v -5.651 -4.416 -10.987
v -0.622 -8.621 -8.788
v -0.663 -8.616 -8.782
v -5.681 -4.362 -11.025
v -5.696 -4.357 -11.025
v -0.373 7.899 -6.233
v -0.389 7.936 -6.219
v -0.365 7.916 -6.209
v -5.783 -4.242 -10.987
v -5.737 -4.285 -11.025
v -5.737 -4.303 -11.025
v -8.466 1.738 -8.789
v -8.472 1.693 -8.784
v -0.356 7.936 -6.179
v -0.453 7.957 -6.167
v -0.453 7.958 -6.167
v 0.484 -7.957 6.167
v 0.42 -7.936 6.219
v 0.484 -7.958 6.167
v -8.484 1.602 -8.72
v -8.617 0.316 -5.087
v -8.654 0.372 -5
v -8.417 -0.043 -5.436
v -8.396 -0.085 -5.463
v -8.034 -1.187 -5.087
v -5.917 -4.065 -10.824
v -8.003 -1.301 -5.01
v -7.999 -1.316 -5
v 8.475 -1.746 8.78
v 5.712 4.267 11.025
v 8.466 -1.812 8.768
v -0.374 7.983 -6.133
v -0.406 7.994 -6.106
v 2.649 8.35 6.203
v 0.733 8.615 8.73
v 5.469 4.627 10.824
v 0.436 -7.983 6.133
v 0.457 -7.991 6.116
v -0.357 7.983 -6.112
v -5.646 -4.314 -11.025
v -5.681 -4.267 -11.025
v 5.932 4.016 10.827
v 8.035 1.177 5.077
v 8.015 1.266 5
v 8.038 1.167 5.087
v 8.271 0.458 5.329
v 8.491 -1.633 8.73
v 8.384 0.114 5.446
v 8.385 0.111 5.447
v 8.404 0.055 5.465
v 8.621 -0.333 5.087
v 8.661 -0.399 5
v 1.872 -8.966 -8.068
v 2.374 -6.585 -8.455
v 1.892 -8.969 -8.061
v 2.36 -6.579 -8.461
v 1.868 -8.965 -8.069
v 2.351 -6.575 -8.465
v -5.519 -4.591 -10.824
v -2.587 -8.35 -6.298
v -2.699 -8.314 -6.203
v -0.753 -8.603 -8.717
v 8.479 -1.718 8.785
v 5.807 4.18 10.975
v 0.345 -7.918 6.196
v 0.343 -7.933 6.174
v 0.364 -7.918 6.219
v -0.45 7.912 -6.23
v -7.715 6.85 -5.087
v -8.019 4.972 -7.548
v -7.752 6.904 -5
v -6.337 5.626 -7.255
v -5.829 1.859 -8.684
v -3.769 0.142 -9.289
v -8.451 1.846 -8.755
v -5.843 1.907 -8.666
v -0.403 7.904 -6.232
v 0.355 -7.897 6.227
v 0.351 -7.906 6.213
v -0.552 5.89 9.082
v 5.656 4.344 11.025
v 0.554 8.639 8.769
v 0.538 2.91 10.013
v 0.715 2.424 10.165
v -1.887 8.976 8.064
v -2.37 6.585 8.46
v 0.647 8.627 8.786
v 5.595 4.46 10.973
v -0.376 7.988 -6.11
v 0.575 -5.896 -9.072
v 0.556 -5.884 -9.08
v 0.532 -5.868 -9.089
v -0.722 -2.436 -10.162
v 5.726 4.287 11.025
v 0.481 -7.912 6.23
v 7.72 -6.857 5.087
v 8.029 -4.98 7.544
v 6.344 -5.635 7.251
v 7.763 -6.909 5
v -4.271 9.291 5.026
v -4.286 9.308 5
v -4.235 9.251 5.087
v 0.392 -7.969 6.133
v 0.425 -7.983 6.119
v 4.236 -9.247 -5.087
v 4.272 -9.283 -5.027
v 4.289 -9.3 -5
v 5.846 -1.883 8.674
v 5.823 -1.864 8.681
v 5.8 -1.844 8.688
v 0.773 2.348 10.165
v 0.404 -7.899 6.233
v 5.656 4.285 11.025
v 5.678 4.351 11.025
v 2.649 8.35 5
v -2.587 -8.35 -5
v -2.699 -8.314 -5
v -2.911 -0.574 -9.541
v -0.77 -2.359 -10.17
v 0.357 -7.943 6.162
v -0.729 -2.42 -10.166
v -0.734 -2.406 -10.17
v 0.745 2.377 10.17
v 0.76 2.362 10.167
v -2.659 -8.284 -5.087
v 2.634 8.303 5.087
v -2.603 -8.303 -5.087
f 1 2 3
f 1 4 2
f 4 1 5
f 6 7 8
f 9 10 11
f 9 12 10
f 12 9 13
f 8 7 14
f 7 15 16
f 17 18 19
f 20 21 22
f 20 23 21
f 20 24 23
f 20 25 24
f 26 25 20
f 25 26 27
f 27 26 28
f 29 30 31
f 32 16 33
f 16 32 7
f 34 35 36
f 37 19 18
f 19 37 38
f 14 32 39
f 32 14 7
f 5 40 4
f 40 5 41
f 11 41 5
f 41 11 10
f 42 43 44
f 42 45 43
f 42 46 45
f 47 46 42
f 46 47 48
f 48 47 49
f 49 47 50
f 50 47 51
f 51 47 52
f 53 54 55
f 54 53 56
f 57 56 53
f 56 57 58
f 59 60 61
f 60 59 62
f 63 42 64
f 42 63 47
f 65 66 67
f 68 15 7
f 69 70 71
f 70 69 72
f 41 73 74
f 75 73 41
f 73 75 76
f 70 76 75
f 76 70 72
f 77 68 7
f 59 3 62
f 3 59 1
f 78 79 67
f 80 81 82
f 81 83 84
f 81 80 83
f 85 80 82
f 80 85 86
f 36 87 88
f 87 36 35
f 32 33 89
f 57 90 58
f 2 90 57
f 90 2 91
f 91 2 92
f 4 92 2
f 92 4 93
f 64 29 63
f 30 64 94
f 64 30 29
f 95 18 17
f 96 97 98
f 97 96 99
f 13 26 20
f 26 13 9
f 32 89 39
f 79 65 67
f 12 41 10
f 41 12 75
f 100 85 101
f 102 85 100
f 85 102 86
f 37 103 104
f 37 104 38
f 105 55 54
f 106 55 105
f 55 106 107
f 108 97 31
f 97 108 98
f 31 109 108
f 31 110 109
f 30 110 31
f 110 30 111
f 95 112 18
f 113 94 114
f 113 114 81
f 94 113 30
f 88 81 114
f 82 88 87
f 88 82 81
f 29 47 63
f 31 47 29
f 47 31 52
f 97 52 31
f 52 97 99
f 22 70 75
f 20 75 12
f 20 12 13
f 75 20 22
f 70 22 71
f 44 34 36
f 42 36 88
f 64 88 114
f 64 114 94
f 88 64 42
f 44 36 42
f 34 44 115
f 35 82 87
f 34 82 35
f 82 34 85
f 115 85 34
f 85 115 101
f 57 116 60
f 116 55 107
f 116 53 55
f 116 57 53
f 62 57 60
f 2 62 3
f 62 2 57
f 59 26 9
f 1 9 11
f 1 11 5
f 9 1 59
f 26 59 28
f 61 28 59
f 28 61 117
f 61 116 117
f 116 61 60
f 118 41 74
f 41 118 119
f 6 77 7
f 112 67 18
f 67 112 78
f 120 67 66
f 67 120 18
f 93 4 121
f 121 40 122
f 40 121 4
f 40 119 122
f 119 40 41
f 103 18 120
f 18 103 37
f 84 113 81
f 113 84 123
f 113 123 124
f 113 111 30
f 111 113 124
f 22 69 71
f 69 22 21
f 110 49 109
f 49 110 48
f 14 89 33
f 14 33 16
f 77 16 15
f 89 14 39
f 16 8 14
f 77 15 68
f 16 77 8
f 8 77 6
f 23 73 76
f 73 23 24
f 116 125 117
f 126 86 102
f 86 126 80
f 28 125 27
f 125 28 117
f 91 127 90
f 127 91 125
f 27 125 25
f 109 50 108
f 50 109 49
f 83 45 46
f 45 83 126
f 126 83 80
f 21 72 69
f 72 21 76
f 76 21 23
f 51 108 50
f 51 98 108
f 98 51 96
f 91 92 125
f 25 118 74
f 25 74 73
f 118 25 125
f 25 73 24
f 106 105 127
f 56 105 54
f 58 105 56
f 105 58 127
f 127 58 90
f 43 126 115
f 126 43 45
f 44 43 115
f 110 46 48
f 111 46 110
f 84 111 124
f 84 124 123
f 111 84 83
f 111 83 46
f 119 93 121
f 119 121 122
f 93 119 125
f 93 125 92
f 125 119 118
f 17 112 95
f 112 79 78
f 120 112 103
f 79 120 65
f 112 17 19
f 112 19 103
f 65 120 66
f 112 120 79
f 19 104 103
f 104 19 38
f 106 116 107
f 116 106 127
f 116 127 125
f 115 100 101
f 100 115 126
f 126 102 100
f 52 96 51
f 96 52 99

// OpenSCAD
// Auto-generated OpenSCAD file

    inner_points = 10*[[0.7287883694352655, -0.9622755809862549, 0.4999999999999998], [0.728788369435265, -0.9622755809862551, -0.5000000000000002], [-0.728788369435265, 0.9622755809862551, 0.5000000000000002], [-0.7287883694352655, 0.9622755809862549, -0.4999999999999998], [0.30187402671986113, -0.3985875963849562, 1.2071067811865475], [0.3018740267198599, -0.39858759638495667, -1.2071067811865475], [-0.3018740267198599, 0.39858759638495667, 1.2071067811865475], [-0.30187402671986113, 0.3985875963849562, -1.2071067811865475], [-0.26181395788143796, -0.8255019391003613, 0.5000000000000002], [0.8655620113211595, 0.02832674633044846, 0.49999999999999956], [-0.2618139578814384, -0.8255019391003613, -0.4999999999999998], [0.8655620113211591, 0.028326746330448405, -0.5000000000000004], [-0.8655620113211591, -0.028326746330448405, 0.5000000000000004], [0.2618139578814384, 0.8255019391003613, 0.4999999999999998], [-0.8655620113211595, -0.02832674633044846, -0.49999999999999956], [0.26181395788143796, 0.8255019391003613, -0.5000000000000002]];

    outer_points = 10*[[-0.5696478499849842, -0.4314281054603697, -1.093836321399554], [-0.960592326979208, 0.4314281054603697, -0.7734590825338425], [0.960592326979208, -0.4314281054603697, 0.7734590825338425], [0.5696478499849842, 0.4314281054603697, 1.093836321399554], [0.1549886117537691, -1.0415595833913545, -0.7734590782057024], [-0.7888348467405426, 1.0415595833913545, -3.0604573320047734e-09], [0.7888348467405426, -1.0415595833913545, 3.0604573320047734e-09], [-0.1549886117537691, 1.0415595833913545, 0.7734590782057024], [-0.5933626113683385, -0.7888348480349219, -0.16018861993246514], [0.3504608533757889, -0.07402136288581751, -0.9336477001994059], [-0.9843070883625624, 0.07402136288581751, 0.1601886189332462], [-0.04048362361843505, 0.7888348480349219, -0.6132704613336946], [0.04048362361843505, -0.7888348480349219, 0.6132704613336946], [0.9843070883625624, -0.07402136288581751, -0.1601886189332462], [-0.3504608533757889, 0.07402136288581751, 0.9336477001994059], [0.5933626113683385, 0.7888348480349219, 0.16018861993246514]];

    // Convex hull for inner set (I)
    module inner_hull() {
        hull() {
            for (p = inner_points) {
                translate(p) sphere(r=0.1);
            }
        }
    }

    // Convex hull for outer set (O) minus inner hull (O \ I)
    module outer_minus_inner() {
        difference() {
            hull() {
                for (p = outer_points) {
                    translate(p) sphere(r=0.1);
                }
            }
            inner_hull(); // Subtract inner hull
        }
    }

    // Convex hull for outer set (O) minus all translated inner hulls
    module outer_minus_AllTranslationInner() {
        difference() {
            hull() {
                for (p = outer_points) {
                    translate(p) sphere(r=0.1);
                }
            }
            hull() {
                translate([0,0,50]) inner_hull();
                translate([0,0,-50]) inner_hull();
            }; // Subtract translated inner hulls
        }
    }

    // Difference between outer_minus_inner and outer_minus_AllTranslationInner
    module outer_minus_inner_diff() {
        difference() {
            // Outer minus inner
            difference() {
                hull() {
                    for (p = outer_points) {
                        translate(p) sphere(r=0.1);
                    }
                }
                inner_hull();
            }

            // Subtract Outer minus AllTranslationInner
            difference() {
                hull() {
                    for (p = outer_points) {
                        translate(p) sphere(r=0.1);
                    }
                }
                hull() {
                    translate([0,0,50]) inner_hull();
                    translate([0,0,-50]) inner_hull();
                };
            }
        }
    }

    // Rendering all with colors applied
    color([1, 1, 0, 1]) outer_minus_inner_diff(); // Opaque yellow
    
